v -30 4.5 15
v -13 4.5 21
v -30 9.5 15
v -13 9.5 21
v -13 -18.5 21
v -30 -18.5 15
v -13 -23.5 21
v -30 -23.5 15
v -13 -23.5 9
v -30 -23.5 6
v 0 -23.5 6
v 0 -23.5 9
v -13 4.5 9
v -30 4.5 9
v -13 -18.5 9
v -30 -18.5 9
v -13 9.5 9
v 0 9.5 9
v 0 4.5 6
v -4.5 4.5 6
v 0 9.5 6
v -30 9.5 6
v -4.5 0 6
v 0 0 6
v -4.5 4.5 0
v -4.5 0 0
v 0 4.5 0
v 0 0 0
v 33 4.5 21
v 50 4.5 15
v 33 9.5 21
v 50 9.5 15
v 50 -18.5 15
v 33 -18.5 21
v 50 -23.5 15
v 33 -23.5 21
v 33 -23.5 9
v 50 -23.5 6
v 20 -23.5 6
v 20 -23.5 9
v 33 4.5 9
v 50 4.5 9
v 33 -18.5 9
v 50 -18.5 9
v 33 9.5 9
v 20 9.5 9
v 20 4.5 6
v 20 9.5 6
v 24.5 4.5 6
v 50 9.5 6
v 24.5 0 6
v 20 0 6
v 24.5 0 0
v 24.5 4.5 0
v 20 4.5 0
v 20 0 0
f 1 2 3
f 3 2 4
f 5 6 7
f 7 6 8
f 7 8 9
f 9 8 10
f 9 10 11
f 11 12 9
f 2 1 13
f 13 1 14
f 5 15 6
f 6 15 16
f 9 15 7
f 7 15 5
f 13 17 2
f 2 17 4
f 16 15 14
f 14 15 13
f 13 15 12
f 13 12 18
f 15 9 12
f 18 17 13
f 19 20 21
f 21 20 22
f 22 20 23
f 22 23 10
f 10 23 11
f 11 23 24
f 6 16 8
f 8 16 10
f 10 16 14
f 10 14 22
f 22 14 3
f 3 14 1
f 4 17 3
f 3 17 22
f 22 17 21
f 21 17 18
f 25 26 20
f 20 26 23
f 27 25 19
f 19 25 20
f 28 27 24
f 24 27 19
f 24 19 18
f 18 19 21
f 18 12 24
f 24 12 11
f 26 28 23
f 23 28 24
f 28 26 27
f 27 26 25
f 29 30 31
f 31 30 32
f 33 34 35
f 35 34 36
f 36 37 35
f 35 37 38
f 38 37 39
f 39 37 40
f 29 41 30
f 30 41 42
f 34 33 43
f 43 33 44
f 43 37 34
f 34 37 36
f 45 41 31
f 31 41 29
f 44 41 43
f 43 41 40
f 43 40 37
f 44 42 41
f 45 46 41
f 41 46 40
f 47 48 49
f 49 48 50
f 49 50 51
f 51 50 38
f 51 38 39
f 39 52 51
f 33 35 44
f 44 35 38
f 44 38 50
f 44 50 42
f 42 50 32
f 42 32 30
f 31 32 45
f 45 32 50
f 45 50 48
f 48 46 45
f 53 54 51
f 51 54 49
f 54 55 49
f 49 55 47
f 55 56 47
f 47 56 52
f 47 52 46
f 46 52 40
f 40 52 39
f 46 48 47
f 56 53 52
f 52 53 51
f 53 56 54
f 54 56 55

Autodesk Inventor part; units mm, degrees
ref_plane "XZ Plane" through (0, 0, 0) normal (0, 1, 0) x (-1, 0, 0)
ref_plane "XY Plane" through (0, 0, 0) normal (0, 0, 1) x (1, 0, 0)
sketch "Szkic1" plane through (0, 0, 0) normal (0, 0, 1) x (1, 0, 0)
  point P0 (0, 0)
sketch "Szkic2" plane through (0, 0, 0) normal (0, 0, 1) x (1, 0, 0)
  line L0 (0, 0) -> (-4.5, 0)
  line L1 (-4.5, 0) -> (-4.5, 4.5)
  line L2 (-4.5, 4.5) -> (0, 4.5)
  line L3 (0, 4.5) -> (0, 0)
  dimension "d0" = 4.5
  dimension "d1" = 4.5
extrude "Wyciągnięcie proste1" add sketch "Szkic2" along normal blind 6
sketch "Szkic3" plane through (0, 0, 6) normal (0, 0, 1) x (1, 0, 0)
  line L0 (0, 0) -> (0, 4.5) projected
  line L1 (0, 4.5) -> (0, 9.5)
  line L2 (0, 9.5) -> (-30, 9.5)
  line L3 (-30, 9.5) -> (-30, -23.5)
  line L4 (-30, -23.5) -> (0, -23.5)
  line L5 (0, -23.5) -> (0, 9.5)
  point P0 (-4.5, 0)
  dimension "d7" = 5
  dimension "d8" = 30
  dimension "d9" = 33
extrude "Wyciągnięcie proste2" add sketch "Szkic3" along normal blind 3
sketch "Szkic4" plane through (0, 0, 9) normal (0, 0, 1) x (1, 0, 0)
  line L0 (0, -23.5) -> (0, 0) construction
  line L1 (0, -23.5) -> (-13, -23.5) construction
  line L2 (-30, -23.5) -> (0, -23.5) construction
  line L3 (-13, -23.5) -> (-13, -18.5) construction
  line L4 (-13, -18.5) -> (-13, 4.5) construction
  line L5 (-13, 4.5) -> (-13, 9.5) construction
  dimension "d12" = 13
  dimension "d13" = 5
  dimension "d14" = 23
  dimension "d15" = 5
sketch "Szkic5" plane through (0, 0, 9) normal (0, 0, 1) x (1, 0, 0)
  line L0 (-30, 9.5) -> (-30, -23.5) projected
  line L1 (-13, -23.5) -> (-30, -23.5)
  line L2 (-30, -23.5) -> (-30, -18.5)
  line L3 (-30, -18.5) -> (-13, -18.5)
  line L4 (-13, -18.5) -> (-13, -23.5)
  line L5 (-13, 4.5) -> (-30, 4.5)
  line L6 (-30, 4.5) -> (-30, 9.5)
  line L7 (-30, 9.5) -> (-13, 9.5)
  line L8 (-13, 9.5) -> (-13, 4.5)
  point P0 (0, 0)
  point P1 (-13, 9.5)
extrude "Wyciągnięcie proste3" add sketch "Szkic5" along normal blind 12
sketch "Szkic6" plane through (-30, -23.5, 6) normal (0, -1, 0) x (1, 0, 0)
  line L0 (17, 15) -> (0, 15) construction
  line L1 (0, 15) -> (0, 9) construction
  line L2 (0, 0) -> (0, 15) construction
  line L3 (17, 15) -> (0, 9)
  arc A0 (17, 15) -> (0, 9) centre (7.5523, 14.6851) ccw
  point P0 (30, -6)
  dimension "d18" = 6
extrude "Wyciągnięcie proste4" cut sketch "Szkic6" against normal blind 33
ref_plane "Płaszczyzna konstrukcyjna1" through (10, 0, 0) normal (1, 0, 0) x (0, 1, 0)
mirror "Odbij1" about plane through (10, 0, 0) normal (1, 0, 0)
properties part number "turret_servo_grip"
